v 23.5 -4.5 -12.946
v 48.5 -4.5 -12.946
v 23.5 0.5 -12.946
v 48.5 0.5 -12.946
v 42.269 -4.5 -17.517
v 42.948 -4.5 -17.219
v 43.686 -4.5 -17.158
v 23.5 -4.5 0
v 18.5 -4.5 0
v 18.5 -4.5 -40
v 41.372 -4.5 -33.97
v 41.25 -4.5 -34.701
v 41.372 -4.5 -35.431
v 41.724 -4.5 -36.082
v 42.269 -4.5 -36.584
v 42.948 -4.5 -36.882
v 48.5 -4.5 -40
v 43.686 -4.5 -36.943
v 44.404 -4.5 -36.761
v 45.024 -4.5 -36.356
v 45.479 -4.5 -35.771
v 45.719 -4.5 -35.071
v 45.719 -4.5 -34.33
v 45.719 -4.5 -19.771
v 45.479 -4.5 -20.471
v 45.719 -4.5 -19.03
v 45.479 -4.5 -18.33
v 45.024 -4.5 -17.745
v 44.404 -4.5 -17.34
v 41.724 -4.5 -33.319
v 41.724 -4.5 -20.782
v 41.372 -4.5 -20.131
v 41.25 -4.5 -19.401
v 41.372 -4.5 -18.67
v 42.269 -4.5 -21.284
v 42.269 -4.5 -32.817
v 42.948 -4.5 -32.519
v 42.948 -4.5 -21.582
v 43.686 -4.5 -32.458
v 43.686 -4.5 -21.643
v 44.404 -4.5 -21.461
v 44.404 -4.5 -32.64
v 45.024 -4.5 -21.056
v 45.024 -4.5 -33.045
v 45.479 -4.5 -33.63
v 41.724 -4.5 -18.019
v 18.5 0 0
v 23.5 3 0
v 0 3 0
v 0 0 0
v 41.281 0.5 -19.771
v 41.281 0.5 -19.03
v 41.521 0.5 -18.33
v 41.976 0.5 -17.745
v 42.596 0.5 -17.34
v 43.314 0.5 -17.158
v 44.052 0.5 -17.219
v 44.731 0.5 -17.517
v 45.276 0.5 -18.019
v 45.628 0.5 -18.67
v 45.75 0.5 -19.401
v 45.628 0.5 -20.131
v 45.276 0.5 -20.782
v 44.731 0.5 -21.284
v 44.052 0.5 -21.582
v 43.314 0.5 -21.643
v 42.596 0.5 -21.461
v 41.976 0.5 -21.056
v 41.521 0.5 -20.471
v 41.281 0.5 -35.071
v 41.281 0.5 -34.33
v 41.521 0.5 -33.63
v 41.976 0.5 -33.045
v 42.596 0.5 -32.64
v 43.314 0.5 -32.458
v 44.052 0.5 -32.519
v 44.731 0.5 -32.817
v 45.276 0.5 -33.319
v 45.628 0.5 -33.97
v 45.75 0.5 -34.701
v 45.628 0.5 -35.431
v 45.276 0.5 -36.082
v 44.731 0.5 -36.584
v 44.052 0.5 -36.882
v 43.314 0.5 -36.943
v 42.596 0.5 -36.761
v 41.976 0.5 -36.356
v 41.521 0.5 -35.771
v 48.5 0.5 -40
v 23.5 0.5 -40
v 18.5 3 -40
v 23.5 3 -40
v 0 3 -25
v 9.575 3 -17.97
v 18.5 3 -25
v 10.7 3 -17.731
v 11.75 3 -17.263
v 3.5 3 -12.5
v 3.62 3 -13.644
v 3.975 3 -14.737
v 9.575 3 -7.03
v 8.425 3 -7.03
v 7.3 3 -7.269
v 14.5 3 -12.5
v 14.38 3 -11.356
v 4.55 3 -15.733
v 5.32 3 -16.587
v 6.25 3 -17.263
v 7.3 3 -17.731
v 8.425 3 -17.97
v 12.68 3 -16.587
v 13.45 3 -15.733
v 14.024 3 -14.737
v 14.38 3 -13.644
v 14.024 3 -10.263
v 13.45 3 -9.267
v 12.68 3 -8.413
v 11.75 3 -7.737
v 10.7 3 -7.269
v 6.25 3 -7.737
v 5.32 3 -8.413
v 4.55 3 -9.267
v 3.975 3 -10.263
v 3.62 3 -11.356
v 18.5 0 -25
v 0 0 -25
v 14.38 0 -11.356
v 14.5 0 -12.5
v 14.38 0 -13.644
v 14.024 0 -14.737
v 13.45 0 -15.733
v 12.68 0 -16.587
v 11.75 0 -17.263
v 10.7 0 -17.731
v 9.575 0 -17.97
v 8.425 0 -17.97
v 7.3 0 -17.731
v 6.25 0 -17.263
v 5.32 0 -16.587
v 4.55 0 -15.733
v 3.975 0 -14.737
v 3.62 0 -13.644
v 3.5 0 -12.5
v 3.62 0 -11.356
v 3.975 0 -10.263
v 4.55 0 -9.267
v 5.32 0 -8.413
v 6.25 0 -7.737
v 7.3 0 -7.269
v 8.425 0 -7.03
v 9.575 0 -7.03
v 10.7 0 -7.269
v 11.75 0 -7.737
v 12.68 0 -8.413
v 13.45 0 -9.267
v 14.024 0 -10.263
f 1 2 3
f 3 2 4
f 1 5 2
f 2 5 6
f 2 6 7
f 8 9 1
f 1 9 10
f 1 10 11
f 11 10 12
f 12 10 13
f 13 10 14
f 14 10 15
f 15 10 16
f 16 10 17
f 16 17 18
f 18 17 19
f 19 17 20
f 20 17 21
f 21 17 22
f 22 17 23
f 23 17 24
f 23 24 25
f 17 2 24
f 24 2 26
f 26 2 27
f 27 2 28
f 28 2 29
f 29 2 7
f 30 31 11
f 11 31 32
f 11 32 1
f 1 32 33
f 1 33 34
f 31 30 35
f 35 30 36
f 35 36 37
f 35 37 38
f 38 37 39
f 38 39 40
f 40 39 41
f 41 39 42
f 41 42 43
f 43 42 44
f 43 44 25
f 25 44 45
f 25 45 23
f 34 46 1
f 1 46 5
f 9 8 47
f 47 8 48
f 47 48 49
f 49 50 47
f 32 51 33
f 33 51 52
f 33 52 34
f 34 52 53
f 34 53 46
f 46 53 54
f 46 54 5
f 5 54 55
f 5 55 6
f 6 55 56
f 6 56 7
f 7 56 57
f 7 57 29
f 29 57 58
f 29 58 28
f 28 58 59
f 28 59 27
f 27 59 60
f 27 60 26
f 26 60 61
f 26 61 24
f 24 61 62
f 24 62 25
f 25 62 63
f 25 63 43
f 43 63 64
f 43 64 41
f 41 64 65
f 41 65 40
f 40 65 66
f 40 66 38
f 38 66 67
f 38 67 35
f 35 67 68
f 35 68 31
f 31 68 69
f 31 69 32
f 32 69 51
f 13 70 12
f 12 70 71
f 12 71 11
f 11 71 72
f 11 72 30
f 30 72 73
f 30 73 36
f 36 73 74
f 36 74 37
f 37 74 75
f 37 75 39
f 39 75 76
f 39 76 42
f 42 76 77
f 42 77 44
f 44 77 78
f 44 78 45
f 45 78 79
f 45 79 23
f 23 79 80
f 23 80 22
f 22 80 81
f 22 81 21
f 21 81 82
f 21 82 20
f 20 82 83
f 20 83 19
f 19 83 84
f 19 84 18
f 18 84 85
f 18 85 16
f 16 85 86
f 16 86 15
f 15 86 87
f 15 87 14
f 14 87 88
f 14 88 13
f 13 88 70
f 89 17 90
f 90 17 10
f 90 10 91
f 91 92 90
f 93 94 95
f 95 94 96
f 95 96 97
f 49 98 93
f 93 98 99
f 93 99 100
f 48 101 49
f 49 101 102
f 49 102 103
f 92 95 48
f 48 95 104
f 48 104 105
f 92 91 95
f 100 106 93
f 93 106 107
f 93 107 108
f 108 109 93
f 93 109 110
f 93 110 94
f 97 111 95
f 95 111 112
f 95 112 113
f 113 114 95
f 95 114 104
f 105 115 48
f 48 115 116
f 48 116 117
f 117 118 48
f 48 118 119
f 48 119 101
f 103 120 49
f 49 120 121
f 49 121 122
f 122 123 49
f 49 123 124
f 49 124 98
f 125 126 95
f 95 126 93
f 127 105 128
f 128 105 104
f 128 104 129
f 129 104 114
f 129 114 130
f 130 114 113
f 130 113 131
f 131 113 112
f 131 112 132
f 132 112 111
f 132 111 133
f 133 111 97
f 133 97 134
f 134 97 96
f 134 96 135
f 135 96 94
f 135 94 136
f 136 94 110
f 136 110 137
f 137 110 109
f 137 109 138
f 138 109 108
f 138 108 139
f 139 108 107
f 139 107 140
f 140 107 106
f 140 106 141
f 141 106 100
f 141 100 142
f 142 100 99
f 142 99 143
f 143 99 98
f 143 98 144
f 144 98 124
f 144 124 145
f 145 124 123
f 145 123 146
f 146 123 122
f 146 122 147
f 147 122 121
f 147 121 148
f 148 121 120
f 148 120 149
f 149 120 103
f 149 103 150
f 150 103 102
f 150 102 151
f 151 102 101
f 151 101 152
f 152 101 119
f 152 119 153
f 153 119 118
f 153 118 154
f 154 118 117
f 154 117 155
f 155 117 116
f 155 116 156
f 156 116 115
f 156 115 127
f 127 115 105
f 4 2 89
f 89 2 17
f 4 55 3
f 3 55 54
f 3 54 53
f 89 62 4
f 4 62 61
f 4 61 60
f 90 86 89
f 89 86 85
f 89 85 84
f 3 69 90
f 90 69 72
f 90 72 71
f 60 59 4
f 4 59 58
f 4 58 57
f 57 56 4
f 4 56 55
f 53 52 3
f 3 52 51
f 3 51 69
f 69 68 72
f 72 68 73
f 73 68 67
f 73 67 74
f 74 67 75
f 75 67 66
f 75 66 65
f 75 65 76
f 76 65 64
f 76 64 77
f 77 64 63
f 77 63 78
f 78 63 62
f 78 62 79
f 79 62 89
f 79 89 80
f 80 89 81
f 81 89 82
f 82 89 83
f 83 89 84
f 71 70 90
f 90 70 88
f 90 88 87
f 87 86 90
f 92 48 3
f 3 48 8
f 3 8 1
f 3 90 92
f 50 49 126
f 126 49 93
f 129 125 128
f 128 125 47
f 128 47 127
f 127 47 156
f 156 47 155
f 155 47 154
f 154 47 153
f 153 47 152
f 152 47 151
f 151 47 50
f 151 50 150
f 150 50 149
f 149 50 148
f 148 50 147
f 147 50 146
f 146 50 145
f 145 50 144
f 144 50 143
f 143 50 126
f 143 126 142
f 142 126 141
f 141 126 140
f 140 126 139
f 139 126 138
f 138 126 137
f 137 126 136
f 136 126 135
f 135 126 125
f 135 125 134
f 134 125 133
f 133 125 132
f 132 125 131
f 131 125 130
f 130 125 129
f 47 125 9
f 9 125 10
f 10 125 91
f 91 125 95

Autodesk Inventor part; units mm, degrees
ref_plane "YZ Plane" through (0, 0, 0) normal (1, 0, 0) x (0, 1, 0)
ref_plane "XZ Plane" through (0, 0, 0) normal (0, 1, 0) x (-1, 0, 0)
ref_plane "XY Plane" through (0, 0, 0) normal (0, 0, 1) x (1, 0, 0)
sketch "Sketch1" plane through (0, 0, 0) normal (0, 1, 0) x (-1, 0, 0)
  line L0 (10, 7.5) -> (10, -7.5)
  circle A0 centre (0, 0) radius 5.25
  circle A1 centre (-15.9216, -7.65) radius 2.25
  circle A2 centre (-15.8711, 7.6499) radius 2.25
  line L1 (10, 0) -> (-25.8686, 0) construction
  line L2 (10, 7.5) -> (-10.3711, 7.5)
  line L3 (-10.3711, 7.5) -> (-10.3711, 15.9691)
  line L4 (-10.3711, 15.9691) -> (-21.3711, 15.9691)
  line L5 (-21.3711, 15.9691) -> (-21.3711, -15)
  line L6 (-21.3711, -15) -> (-10.3711, -15)
  line L7 (-10.3711, -15) -> (-10.3711, -7.5)
  line L8 (-10.3711, -7.5) -> (10, -7.5)
  circle A3 centre (-15.9216, -7.65) radius 5
  circle A4 centre (-15.8711, 7.6499) radius 4.9375
  point P0 (-7.9343, 0)
  dimension "d0" = 10.5
  dimension "d2" = 10
  dimension "d3" = 15.3
  dimension "d4" = 7.65
  dimension "d5" = 4.5
  dimension "d6" = 15
  dimension "d7" = 15
  dimension "d8" = 11
  dimension "d9" = 5.5
  dimension "d10" = 10
extrude "Extrusion1" [suppressed]
sketch "Sketch2" plane through (0, 0, 0) normal (0, 0, 1) x (1, 0, 0)
  line L0 (0, 0) -> (0, 3)
  line L1 (0, 3) -> (23.5, 3)
  line L2 (23.5, 3) -> (23.5, 0.5)
  line L3 (23.5, 0.5) -> (48.5, 0.5)
  line L4 (48.5, 0.5) -> (48.5, -4.5)
  line L5 (48.5, -4.5) -> (18.5, -4.5)
  line L6 (18.5, -4.5) -> (18.5, 0)
  line L7 (18.5, 0) -> (0, 0)
  line L8 (18.5, 0) -> (18.5, 3)
  point P0 (0, 1.5)
  dimension "d13" = 3
  dimension "d14" = 5
  dimension "d15" = 25
  dimension "d16" = 23.5
  dimension "d28" = 4.5
  dimension "d29" = 5
extrude "Extrusion2" add sketch "Sketch2" against normal blind 25
sketch "Sketch3" plane through (0, 3, 0) normal (0, 1, 0) x (-1, 0, 0)
  circle A0 centre (-9, -12.5) radius 5.5
  line L0 (0, 0) -> (0, -25) projected
  line L1 (-23.5, 0) -> (0, 0) projected
  point P0 (0, -12.5)
  point P1 (0, -12.5)
  dimension "d19" = 11
  dimension "d26" = 9
  dimension "d27" = 12.5
extrude "Extrusion3" cut sketch "Sketch3" against normal blind 25
extrude "Extrusion4" add sketch "Sketch2" against normal blind 40 contours L8 L1 L2 L3 L4 L5 L6
sketch "Sketch4" plane through (23.5, 0.5, 0) normal (0, 1, 0) x (1, 0, 0)
  circle A0 centre (20, 34.7005) radius 2.25
  circle A1 centre (20, 19.4005) radius 2.25
  line L0 (0, 0) -> (0, 40) projected
  point P0 (-23.5, 0)
  dimension "d32" = 4.5
  dimension "d33" = 15.3
  dimension "d36" = 20
extrude "Extrusion5" cut sketch "Sketch4" against normal up to surface (5 mm away)
sketch "Sketch5" plane through (23.5, 0.5, 0) normal (0, 1, 0) x (1, 0, 0)
  line L0 (25, 0) -> (0, 0) projected
  line L1 (0, 0) -> (0, 40) projected
  line L2 (25, 0) -> (0, 0)
  line L3 (0, 0) -> (0, 12.946)
  line L4 (0, 12.946) -> (25, 12.946)
  line L5 (25, 12.946) -> (25, 0)
  point P0 (-23.5, 0)
extrude "Extrusion6" cut sketch "Sketch5" against normal blind 10
equation "\"d4\" = 0.5 * d3"
properties part number "imu2_mount" material "ABS Plastic"
